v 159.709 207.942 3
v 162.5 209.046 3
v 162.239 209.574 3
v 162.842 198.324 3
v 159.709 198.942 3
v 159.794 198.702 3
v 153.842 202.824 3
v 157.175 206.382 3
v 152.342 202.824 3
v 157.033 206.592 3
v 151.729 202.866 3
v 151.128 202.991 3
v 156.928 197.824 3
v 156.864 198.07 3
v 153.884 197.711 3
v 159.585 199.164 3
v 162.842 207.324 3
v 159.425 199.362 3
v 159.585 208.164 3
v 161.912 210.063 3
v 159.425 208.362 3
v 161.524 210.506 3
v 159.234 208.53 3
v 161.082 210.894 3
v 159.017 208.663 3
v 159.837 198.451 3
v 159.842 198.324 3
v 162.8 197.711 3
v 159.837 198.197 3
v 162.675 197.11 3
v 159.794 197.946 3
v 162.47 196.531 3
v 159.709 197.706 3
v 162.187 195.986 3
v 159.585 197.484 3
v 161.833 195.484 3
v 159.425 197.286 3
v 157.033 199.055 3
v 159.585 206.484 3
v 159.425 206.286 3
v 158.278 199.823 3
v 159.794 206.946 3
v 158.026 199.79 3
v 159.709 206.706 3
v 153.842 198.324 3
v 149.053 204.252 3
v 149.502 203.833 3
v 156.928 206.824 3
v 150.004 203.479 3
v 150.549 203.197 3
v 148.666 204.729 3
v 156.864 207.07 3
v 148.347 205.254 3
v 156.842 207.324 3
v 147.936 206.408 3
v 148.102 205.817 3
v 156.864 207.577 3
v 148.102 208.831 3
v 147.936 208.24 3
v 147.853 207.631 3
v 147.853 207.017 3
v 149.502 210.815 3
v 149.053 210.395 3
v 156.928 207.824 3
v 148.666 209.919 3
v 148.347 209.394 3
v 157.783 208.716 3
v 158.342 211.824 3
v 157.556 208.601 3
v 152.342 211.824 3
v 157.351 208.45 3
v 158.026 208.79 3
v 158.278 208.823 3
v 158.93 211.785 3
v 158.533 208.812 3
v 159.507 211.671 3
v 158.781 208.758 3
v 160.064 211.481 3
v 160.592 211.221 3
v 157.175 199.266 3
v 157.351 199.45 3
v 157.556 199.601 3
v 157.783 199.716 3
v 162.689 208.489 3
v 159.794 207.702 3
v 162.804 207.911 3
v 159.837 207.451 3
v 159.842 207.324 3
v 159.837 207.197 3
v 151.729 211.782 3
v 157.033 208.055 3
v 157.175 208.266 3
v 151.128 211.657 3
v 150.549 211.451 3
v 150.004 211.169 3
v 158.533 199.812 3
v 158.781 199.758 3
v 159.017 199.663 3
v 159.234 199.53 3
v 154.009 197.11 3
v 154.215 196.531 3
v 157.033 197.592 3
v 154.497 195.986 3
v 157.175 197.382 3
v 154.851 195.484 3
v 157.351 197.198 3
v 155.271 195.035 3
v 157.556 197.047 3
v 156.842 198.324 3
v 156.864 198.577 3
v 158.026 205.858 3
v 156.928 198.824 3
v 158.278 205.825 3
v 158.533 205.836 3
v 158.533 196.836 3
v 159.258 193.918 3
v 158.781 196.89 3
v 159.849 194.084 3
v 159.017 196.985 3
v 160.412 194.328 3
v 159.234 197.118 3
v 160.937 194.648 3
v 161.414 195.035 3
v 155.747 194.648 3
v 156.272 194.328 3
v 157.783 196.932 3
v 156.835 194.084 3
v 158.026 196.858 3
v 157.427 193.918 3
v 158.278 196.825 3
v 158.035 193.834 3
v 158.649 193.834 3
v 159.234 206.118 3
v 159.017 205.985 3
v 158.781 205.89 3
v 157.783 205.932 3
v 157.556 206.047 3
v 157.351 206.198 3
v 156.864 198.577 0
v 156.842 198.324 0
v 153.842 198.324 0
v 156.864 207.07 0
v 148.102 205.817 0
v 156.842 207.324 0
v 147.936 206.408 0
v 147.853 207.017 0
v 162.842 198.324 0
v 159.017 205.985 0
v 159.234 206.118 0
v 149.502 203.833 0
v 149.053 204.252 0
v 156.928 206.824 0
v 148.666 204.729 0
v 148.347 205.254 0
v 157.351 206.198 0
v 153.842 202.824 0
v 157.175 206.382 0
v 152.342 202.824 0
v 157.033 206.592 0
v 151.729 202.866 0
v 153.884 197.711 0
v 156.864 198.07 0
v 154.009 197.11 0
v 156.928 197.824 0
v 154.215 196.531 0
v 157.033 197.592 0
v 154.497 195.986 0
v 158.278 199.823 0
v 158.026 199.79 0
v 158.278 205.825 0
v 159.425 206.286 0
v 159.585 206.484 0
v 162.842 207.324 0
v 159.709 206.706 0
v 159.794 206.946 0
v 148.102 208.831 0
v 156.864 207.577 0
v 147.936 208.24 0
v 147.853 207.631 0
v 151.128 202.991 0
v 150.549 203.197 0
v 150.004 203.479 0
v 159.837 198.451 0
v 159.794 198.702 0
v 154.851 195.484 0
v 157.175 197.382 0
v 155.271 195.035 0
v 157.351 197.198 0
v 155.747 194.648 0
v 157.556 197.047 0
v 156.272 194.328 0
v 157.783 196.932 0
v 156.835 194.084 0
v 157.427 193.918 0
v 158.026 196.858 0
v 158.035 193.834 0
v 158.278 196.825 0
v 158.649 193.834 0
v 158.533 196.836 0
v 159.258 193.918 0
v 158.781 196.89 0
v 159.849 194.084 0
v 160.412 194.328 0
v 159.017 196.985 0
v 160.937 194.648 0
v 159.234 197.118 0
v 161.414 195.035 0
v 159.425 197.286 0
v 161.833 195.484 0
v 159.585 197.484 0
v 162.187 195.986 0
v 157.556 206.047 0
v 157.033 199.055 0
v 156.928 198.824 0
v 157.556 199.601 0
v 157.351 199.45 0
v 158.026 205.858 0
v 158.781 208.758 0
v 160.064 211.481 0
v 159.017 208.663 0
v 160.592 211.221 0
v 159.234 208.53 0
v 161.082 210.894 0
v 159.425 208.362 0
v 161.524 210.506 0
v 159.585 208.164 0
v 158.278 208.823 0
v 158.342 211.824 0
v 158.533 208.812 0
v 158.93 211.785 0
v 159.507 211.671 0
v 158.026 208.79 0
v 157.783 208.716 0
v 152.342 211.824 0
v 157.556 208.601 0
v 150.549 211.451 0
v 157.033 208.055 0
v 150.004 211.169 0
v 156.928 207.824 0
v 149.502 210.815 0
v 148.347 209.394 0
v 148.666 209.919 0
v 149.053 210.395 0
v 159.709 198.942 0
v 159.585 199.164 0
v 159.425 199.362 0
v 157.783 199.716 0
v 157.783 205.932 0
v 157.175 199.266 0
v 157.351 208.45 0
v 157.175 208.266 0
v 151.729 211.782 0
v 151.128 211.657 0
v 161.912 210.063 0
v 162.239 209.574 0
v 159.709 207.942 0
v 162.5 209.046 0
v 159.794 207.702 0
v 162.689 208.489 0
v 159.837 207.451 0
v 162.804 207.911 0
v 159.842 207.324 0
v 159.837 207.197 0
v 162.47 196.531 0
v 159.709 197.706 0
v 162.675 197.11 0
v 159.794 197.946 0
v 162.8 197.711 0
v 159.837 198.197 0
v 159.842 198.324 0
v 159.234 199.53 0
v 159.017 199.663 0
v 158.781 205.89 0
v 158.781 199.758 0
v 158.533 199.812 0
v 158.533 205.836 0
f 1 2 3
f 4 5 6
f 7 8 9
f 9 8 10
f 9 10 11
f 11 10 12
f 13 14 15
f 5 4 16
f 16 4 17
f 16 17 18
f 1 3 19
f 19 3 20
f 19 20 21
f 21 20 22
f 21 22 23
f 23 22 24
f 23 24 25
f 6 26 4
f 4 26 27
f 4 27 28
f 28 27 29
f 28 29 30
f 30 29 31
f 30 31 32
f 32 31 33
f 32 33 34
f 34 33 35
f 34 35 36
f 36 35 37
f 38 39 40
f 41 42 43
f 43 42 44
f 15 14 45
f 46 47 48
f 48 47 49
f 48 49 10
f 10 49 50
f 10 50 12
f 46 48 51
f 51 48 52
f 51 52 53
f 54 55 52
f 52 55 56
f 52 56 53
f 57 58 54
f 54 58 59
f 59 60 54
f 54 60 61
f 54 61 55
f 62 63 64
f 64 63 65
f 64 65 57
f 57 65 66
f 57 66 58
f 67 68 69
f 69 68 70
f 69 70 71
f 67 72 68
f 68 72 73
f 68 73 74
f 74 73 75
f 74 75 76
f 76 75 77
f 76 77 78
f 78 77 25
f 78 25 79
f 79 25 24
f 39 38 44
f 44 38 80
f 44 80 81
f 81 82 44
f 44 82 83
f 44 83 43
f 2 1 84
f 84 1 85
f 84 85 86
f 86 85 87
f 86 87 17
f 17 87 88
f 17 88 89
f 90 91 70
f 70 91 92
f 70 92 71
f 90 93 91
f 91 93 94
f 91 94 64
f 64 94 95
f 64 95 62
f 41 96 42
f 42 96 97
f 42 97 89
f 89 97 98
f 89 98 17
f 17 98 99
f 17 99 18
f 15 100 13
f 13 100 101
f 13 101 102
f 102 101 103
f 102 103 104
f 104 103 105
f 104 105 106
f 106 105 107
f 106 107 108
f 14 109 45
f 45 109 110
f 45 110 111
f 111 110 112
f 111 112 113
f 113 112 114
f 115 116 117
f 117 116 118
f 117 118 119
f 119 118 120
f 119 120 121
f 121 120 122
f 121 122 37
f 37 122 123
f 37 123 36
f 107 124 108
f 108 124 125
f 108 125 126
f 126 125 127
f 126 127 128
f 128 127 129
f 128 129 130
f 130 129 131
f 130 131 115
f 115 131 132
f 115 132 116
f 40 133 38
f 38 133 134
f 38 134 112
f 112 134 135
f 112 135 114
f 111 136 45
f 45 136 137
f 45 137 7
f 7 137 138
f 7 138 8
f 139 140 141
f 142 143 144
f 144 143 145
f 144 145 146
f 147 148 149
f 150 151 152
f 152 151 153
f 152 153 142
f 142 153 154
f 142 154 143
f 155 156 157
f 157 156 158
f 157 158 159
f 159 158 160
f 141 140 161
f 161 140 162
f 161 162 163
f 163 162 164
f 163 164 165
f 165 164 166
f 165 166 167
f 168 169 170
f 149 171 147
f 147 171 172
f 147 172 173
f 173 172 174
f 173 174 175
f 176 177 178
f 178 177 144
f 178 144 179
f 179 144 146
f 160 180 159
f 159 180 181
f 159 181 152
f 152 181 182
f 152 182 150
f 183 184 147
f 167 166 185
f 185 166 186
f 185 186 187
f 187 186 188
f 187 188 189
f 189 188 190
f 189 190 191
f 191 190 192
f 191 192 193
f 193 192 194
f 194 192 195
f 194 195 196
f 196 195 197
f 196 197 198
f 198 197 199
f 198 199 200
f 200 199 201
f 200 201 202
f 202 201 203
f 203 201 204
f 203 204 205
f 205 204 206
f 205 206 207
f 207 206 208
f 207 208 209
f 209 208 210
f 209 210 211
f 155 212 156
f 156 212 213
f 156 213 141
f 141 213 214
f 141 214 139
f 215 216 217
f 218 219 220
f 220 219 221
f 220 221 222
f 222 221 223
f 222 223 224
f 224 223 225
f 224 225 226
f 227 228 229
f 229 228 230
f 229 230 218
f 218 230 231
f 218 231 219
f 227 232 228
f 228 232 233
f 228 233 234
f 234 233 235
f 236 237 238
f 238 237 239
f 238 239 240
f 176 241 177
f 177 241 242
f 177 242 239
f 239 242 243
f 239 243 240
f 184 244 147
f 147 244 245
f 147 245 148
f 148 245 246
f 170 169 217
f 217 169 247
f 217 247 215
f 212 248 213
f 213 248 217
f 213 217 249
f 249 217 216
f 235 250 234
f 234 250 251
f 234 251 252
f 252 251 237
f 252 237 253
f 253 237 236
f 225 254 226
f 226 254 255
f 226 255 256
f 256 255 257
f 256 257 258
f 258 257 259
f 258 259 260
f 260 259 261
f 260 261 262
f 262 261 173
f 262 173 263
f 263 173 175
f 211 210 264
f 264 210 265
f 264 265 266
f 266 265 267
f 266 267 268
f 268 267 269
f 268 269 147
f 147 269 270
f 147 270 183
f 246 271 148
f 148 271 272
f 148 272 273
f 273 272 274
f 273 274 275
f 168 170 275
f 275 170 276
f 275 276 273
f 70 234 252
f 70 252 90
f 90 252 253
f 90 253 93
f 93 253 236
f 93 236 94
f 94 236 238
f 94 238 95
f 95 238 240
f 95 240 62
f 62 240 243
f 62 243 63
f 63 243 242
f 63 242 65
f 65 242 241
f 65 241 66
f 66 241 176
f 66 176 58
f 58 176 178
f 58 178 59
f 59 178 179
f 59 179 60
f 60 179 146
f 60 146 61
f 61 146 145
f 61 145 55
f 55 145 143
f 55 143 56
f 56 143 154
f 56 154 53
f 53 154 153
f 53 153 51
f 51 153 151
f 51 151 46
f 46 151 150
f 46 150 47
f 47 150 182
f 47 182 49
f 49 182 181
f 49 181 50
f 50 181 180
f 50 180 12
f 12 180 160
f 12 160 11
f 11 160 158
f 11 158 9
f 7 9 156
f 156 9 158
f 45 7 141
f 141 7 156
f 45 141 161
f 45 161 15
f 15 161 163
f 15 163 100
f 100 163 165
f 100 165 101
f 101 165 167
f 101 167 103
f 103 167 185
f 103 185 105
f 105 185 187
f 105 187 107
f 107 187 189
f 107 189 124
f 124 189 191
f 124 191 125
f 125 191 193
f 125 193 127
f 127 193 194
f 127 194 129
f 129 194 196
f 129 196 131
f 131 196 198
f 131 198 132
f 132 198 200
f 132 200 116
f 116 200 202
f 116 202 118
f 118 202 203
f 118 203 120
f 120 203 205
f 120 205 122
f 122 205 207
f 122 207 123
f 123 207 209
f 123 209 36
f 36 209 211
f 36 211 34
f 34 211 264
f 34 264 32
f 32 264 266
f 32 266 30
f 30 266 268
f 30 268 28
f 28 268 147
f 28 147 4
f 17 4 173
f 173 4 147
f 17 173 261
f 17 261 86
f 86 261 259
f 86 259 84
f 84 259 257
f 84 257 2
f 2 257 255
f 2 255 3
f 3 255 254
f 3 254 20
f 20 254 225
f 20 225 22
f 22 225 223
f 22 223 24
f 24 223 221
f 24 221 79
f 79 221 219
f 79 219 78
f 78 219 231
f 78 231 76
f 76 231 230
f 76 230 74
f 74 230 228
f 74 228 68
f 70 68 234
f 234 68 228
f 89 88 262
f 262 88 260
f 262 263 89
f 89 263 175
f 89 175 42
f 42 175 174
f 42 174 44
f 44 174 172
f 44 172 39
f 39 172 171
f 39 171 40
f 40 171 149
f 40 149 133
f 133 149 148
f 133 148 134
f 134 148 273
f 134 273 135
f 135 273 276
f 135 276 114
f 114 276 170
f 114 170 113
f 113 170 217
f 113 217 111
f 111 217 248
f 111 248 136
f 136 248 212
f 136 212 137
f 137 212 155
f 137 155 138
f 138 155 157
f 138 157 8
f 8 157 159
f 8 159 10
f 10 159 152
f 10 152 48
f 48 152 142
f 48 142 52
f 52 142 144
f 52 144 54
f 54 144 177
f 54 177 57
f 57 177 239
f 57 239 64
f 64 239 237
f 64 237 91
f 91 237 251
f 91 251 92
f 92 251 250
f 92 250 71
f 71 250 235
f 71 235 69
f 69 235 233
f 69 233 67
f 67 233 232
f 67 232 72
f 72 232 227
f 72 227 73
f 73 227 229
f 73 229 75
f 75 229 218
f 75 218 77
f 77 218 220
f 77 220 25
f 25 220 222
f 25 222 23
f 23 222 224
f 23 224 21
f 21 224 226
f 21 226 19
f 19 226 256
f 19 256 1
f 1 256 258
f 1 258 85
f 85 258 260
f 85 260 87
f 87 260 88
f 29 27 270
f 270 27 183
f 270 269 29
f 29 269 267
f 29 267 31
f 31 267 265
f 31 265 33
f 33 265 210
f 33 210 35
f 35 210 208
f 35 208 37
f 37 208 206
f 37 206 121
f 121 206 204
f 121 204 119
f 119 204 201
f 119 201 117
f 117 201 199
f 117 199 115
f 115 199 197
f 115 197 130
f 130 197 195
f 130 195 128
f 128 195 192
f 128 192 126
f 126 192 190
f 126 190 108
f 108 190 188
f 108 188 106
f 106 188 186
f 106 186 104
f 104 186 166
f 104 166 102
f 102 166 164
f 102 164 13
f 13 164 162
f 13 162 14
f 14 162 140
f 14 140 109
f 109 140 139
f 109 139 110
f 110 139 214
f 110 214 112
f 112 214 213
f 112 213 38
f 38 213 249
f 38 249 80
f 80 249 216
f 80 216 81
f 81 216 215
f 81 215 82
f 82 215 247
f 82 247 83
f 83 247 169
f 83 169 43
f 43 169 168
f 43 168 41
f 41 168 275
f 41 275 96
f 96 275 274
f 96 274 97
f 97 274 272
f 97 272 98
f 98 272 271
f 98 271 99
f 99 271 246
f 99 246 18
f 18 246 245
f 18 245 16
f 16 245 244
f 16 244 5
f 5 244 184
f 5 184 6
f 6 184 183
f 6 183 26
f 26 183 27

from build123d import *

# Parameters (mm, degrees)
MODEL_R                 = 1.5
SALIENTE_EXTRUIR1_DEPTH = 3


with BuildPart() as part:
    # Model → Saliente-Extruir1 (new body)
    with BuildSketch(Plane.XY):
        with BuildLine():
            Line((152.34213351, 211.823953209), (158.34213351, 211.823953209))
            ThreePointArc((158.34213351, 211.823953209), (161.524114025, 210.505933724), (162.84213351, 207.323953209))
            Line((162.84213351, 207.323953209), (162.84213351, 198.323953209))
            ThreePointArc((162.84213351, 198.323953209), (158.34213351, 193.823953209), (153.84213351, 198.323953209))
            Line((153.84213351, 198.323953209), (153.84213351, 202.823953209))
            Line((153.84213351, 202.823953209), (152.34213351, 202.823953209))
            ThreePointArc((152.34213351, 202.823953209), (147.84213351, 207.323953209), (152.34213351, 211.823953209))
        make_face()
        with Locations((158.34213351, 207.323953209)):
            Circle(MODEL_R, mode=Mode.SUBTRACT)
        with Locations((158.34213351, 198.323953209)):
            Circle(MODEL_R, mode=Mode.SUBTRACT)
    extrude(amount=SALIENTE_EXTRUIR1_DEPTH)


solid = part.part
